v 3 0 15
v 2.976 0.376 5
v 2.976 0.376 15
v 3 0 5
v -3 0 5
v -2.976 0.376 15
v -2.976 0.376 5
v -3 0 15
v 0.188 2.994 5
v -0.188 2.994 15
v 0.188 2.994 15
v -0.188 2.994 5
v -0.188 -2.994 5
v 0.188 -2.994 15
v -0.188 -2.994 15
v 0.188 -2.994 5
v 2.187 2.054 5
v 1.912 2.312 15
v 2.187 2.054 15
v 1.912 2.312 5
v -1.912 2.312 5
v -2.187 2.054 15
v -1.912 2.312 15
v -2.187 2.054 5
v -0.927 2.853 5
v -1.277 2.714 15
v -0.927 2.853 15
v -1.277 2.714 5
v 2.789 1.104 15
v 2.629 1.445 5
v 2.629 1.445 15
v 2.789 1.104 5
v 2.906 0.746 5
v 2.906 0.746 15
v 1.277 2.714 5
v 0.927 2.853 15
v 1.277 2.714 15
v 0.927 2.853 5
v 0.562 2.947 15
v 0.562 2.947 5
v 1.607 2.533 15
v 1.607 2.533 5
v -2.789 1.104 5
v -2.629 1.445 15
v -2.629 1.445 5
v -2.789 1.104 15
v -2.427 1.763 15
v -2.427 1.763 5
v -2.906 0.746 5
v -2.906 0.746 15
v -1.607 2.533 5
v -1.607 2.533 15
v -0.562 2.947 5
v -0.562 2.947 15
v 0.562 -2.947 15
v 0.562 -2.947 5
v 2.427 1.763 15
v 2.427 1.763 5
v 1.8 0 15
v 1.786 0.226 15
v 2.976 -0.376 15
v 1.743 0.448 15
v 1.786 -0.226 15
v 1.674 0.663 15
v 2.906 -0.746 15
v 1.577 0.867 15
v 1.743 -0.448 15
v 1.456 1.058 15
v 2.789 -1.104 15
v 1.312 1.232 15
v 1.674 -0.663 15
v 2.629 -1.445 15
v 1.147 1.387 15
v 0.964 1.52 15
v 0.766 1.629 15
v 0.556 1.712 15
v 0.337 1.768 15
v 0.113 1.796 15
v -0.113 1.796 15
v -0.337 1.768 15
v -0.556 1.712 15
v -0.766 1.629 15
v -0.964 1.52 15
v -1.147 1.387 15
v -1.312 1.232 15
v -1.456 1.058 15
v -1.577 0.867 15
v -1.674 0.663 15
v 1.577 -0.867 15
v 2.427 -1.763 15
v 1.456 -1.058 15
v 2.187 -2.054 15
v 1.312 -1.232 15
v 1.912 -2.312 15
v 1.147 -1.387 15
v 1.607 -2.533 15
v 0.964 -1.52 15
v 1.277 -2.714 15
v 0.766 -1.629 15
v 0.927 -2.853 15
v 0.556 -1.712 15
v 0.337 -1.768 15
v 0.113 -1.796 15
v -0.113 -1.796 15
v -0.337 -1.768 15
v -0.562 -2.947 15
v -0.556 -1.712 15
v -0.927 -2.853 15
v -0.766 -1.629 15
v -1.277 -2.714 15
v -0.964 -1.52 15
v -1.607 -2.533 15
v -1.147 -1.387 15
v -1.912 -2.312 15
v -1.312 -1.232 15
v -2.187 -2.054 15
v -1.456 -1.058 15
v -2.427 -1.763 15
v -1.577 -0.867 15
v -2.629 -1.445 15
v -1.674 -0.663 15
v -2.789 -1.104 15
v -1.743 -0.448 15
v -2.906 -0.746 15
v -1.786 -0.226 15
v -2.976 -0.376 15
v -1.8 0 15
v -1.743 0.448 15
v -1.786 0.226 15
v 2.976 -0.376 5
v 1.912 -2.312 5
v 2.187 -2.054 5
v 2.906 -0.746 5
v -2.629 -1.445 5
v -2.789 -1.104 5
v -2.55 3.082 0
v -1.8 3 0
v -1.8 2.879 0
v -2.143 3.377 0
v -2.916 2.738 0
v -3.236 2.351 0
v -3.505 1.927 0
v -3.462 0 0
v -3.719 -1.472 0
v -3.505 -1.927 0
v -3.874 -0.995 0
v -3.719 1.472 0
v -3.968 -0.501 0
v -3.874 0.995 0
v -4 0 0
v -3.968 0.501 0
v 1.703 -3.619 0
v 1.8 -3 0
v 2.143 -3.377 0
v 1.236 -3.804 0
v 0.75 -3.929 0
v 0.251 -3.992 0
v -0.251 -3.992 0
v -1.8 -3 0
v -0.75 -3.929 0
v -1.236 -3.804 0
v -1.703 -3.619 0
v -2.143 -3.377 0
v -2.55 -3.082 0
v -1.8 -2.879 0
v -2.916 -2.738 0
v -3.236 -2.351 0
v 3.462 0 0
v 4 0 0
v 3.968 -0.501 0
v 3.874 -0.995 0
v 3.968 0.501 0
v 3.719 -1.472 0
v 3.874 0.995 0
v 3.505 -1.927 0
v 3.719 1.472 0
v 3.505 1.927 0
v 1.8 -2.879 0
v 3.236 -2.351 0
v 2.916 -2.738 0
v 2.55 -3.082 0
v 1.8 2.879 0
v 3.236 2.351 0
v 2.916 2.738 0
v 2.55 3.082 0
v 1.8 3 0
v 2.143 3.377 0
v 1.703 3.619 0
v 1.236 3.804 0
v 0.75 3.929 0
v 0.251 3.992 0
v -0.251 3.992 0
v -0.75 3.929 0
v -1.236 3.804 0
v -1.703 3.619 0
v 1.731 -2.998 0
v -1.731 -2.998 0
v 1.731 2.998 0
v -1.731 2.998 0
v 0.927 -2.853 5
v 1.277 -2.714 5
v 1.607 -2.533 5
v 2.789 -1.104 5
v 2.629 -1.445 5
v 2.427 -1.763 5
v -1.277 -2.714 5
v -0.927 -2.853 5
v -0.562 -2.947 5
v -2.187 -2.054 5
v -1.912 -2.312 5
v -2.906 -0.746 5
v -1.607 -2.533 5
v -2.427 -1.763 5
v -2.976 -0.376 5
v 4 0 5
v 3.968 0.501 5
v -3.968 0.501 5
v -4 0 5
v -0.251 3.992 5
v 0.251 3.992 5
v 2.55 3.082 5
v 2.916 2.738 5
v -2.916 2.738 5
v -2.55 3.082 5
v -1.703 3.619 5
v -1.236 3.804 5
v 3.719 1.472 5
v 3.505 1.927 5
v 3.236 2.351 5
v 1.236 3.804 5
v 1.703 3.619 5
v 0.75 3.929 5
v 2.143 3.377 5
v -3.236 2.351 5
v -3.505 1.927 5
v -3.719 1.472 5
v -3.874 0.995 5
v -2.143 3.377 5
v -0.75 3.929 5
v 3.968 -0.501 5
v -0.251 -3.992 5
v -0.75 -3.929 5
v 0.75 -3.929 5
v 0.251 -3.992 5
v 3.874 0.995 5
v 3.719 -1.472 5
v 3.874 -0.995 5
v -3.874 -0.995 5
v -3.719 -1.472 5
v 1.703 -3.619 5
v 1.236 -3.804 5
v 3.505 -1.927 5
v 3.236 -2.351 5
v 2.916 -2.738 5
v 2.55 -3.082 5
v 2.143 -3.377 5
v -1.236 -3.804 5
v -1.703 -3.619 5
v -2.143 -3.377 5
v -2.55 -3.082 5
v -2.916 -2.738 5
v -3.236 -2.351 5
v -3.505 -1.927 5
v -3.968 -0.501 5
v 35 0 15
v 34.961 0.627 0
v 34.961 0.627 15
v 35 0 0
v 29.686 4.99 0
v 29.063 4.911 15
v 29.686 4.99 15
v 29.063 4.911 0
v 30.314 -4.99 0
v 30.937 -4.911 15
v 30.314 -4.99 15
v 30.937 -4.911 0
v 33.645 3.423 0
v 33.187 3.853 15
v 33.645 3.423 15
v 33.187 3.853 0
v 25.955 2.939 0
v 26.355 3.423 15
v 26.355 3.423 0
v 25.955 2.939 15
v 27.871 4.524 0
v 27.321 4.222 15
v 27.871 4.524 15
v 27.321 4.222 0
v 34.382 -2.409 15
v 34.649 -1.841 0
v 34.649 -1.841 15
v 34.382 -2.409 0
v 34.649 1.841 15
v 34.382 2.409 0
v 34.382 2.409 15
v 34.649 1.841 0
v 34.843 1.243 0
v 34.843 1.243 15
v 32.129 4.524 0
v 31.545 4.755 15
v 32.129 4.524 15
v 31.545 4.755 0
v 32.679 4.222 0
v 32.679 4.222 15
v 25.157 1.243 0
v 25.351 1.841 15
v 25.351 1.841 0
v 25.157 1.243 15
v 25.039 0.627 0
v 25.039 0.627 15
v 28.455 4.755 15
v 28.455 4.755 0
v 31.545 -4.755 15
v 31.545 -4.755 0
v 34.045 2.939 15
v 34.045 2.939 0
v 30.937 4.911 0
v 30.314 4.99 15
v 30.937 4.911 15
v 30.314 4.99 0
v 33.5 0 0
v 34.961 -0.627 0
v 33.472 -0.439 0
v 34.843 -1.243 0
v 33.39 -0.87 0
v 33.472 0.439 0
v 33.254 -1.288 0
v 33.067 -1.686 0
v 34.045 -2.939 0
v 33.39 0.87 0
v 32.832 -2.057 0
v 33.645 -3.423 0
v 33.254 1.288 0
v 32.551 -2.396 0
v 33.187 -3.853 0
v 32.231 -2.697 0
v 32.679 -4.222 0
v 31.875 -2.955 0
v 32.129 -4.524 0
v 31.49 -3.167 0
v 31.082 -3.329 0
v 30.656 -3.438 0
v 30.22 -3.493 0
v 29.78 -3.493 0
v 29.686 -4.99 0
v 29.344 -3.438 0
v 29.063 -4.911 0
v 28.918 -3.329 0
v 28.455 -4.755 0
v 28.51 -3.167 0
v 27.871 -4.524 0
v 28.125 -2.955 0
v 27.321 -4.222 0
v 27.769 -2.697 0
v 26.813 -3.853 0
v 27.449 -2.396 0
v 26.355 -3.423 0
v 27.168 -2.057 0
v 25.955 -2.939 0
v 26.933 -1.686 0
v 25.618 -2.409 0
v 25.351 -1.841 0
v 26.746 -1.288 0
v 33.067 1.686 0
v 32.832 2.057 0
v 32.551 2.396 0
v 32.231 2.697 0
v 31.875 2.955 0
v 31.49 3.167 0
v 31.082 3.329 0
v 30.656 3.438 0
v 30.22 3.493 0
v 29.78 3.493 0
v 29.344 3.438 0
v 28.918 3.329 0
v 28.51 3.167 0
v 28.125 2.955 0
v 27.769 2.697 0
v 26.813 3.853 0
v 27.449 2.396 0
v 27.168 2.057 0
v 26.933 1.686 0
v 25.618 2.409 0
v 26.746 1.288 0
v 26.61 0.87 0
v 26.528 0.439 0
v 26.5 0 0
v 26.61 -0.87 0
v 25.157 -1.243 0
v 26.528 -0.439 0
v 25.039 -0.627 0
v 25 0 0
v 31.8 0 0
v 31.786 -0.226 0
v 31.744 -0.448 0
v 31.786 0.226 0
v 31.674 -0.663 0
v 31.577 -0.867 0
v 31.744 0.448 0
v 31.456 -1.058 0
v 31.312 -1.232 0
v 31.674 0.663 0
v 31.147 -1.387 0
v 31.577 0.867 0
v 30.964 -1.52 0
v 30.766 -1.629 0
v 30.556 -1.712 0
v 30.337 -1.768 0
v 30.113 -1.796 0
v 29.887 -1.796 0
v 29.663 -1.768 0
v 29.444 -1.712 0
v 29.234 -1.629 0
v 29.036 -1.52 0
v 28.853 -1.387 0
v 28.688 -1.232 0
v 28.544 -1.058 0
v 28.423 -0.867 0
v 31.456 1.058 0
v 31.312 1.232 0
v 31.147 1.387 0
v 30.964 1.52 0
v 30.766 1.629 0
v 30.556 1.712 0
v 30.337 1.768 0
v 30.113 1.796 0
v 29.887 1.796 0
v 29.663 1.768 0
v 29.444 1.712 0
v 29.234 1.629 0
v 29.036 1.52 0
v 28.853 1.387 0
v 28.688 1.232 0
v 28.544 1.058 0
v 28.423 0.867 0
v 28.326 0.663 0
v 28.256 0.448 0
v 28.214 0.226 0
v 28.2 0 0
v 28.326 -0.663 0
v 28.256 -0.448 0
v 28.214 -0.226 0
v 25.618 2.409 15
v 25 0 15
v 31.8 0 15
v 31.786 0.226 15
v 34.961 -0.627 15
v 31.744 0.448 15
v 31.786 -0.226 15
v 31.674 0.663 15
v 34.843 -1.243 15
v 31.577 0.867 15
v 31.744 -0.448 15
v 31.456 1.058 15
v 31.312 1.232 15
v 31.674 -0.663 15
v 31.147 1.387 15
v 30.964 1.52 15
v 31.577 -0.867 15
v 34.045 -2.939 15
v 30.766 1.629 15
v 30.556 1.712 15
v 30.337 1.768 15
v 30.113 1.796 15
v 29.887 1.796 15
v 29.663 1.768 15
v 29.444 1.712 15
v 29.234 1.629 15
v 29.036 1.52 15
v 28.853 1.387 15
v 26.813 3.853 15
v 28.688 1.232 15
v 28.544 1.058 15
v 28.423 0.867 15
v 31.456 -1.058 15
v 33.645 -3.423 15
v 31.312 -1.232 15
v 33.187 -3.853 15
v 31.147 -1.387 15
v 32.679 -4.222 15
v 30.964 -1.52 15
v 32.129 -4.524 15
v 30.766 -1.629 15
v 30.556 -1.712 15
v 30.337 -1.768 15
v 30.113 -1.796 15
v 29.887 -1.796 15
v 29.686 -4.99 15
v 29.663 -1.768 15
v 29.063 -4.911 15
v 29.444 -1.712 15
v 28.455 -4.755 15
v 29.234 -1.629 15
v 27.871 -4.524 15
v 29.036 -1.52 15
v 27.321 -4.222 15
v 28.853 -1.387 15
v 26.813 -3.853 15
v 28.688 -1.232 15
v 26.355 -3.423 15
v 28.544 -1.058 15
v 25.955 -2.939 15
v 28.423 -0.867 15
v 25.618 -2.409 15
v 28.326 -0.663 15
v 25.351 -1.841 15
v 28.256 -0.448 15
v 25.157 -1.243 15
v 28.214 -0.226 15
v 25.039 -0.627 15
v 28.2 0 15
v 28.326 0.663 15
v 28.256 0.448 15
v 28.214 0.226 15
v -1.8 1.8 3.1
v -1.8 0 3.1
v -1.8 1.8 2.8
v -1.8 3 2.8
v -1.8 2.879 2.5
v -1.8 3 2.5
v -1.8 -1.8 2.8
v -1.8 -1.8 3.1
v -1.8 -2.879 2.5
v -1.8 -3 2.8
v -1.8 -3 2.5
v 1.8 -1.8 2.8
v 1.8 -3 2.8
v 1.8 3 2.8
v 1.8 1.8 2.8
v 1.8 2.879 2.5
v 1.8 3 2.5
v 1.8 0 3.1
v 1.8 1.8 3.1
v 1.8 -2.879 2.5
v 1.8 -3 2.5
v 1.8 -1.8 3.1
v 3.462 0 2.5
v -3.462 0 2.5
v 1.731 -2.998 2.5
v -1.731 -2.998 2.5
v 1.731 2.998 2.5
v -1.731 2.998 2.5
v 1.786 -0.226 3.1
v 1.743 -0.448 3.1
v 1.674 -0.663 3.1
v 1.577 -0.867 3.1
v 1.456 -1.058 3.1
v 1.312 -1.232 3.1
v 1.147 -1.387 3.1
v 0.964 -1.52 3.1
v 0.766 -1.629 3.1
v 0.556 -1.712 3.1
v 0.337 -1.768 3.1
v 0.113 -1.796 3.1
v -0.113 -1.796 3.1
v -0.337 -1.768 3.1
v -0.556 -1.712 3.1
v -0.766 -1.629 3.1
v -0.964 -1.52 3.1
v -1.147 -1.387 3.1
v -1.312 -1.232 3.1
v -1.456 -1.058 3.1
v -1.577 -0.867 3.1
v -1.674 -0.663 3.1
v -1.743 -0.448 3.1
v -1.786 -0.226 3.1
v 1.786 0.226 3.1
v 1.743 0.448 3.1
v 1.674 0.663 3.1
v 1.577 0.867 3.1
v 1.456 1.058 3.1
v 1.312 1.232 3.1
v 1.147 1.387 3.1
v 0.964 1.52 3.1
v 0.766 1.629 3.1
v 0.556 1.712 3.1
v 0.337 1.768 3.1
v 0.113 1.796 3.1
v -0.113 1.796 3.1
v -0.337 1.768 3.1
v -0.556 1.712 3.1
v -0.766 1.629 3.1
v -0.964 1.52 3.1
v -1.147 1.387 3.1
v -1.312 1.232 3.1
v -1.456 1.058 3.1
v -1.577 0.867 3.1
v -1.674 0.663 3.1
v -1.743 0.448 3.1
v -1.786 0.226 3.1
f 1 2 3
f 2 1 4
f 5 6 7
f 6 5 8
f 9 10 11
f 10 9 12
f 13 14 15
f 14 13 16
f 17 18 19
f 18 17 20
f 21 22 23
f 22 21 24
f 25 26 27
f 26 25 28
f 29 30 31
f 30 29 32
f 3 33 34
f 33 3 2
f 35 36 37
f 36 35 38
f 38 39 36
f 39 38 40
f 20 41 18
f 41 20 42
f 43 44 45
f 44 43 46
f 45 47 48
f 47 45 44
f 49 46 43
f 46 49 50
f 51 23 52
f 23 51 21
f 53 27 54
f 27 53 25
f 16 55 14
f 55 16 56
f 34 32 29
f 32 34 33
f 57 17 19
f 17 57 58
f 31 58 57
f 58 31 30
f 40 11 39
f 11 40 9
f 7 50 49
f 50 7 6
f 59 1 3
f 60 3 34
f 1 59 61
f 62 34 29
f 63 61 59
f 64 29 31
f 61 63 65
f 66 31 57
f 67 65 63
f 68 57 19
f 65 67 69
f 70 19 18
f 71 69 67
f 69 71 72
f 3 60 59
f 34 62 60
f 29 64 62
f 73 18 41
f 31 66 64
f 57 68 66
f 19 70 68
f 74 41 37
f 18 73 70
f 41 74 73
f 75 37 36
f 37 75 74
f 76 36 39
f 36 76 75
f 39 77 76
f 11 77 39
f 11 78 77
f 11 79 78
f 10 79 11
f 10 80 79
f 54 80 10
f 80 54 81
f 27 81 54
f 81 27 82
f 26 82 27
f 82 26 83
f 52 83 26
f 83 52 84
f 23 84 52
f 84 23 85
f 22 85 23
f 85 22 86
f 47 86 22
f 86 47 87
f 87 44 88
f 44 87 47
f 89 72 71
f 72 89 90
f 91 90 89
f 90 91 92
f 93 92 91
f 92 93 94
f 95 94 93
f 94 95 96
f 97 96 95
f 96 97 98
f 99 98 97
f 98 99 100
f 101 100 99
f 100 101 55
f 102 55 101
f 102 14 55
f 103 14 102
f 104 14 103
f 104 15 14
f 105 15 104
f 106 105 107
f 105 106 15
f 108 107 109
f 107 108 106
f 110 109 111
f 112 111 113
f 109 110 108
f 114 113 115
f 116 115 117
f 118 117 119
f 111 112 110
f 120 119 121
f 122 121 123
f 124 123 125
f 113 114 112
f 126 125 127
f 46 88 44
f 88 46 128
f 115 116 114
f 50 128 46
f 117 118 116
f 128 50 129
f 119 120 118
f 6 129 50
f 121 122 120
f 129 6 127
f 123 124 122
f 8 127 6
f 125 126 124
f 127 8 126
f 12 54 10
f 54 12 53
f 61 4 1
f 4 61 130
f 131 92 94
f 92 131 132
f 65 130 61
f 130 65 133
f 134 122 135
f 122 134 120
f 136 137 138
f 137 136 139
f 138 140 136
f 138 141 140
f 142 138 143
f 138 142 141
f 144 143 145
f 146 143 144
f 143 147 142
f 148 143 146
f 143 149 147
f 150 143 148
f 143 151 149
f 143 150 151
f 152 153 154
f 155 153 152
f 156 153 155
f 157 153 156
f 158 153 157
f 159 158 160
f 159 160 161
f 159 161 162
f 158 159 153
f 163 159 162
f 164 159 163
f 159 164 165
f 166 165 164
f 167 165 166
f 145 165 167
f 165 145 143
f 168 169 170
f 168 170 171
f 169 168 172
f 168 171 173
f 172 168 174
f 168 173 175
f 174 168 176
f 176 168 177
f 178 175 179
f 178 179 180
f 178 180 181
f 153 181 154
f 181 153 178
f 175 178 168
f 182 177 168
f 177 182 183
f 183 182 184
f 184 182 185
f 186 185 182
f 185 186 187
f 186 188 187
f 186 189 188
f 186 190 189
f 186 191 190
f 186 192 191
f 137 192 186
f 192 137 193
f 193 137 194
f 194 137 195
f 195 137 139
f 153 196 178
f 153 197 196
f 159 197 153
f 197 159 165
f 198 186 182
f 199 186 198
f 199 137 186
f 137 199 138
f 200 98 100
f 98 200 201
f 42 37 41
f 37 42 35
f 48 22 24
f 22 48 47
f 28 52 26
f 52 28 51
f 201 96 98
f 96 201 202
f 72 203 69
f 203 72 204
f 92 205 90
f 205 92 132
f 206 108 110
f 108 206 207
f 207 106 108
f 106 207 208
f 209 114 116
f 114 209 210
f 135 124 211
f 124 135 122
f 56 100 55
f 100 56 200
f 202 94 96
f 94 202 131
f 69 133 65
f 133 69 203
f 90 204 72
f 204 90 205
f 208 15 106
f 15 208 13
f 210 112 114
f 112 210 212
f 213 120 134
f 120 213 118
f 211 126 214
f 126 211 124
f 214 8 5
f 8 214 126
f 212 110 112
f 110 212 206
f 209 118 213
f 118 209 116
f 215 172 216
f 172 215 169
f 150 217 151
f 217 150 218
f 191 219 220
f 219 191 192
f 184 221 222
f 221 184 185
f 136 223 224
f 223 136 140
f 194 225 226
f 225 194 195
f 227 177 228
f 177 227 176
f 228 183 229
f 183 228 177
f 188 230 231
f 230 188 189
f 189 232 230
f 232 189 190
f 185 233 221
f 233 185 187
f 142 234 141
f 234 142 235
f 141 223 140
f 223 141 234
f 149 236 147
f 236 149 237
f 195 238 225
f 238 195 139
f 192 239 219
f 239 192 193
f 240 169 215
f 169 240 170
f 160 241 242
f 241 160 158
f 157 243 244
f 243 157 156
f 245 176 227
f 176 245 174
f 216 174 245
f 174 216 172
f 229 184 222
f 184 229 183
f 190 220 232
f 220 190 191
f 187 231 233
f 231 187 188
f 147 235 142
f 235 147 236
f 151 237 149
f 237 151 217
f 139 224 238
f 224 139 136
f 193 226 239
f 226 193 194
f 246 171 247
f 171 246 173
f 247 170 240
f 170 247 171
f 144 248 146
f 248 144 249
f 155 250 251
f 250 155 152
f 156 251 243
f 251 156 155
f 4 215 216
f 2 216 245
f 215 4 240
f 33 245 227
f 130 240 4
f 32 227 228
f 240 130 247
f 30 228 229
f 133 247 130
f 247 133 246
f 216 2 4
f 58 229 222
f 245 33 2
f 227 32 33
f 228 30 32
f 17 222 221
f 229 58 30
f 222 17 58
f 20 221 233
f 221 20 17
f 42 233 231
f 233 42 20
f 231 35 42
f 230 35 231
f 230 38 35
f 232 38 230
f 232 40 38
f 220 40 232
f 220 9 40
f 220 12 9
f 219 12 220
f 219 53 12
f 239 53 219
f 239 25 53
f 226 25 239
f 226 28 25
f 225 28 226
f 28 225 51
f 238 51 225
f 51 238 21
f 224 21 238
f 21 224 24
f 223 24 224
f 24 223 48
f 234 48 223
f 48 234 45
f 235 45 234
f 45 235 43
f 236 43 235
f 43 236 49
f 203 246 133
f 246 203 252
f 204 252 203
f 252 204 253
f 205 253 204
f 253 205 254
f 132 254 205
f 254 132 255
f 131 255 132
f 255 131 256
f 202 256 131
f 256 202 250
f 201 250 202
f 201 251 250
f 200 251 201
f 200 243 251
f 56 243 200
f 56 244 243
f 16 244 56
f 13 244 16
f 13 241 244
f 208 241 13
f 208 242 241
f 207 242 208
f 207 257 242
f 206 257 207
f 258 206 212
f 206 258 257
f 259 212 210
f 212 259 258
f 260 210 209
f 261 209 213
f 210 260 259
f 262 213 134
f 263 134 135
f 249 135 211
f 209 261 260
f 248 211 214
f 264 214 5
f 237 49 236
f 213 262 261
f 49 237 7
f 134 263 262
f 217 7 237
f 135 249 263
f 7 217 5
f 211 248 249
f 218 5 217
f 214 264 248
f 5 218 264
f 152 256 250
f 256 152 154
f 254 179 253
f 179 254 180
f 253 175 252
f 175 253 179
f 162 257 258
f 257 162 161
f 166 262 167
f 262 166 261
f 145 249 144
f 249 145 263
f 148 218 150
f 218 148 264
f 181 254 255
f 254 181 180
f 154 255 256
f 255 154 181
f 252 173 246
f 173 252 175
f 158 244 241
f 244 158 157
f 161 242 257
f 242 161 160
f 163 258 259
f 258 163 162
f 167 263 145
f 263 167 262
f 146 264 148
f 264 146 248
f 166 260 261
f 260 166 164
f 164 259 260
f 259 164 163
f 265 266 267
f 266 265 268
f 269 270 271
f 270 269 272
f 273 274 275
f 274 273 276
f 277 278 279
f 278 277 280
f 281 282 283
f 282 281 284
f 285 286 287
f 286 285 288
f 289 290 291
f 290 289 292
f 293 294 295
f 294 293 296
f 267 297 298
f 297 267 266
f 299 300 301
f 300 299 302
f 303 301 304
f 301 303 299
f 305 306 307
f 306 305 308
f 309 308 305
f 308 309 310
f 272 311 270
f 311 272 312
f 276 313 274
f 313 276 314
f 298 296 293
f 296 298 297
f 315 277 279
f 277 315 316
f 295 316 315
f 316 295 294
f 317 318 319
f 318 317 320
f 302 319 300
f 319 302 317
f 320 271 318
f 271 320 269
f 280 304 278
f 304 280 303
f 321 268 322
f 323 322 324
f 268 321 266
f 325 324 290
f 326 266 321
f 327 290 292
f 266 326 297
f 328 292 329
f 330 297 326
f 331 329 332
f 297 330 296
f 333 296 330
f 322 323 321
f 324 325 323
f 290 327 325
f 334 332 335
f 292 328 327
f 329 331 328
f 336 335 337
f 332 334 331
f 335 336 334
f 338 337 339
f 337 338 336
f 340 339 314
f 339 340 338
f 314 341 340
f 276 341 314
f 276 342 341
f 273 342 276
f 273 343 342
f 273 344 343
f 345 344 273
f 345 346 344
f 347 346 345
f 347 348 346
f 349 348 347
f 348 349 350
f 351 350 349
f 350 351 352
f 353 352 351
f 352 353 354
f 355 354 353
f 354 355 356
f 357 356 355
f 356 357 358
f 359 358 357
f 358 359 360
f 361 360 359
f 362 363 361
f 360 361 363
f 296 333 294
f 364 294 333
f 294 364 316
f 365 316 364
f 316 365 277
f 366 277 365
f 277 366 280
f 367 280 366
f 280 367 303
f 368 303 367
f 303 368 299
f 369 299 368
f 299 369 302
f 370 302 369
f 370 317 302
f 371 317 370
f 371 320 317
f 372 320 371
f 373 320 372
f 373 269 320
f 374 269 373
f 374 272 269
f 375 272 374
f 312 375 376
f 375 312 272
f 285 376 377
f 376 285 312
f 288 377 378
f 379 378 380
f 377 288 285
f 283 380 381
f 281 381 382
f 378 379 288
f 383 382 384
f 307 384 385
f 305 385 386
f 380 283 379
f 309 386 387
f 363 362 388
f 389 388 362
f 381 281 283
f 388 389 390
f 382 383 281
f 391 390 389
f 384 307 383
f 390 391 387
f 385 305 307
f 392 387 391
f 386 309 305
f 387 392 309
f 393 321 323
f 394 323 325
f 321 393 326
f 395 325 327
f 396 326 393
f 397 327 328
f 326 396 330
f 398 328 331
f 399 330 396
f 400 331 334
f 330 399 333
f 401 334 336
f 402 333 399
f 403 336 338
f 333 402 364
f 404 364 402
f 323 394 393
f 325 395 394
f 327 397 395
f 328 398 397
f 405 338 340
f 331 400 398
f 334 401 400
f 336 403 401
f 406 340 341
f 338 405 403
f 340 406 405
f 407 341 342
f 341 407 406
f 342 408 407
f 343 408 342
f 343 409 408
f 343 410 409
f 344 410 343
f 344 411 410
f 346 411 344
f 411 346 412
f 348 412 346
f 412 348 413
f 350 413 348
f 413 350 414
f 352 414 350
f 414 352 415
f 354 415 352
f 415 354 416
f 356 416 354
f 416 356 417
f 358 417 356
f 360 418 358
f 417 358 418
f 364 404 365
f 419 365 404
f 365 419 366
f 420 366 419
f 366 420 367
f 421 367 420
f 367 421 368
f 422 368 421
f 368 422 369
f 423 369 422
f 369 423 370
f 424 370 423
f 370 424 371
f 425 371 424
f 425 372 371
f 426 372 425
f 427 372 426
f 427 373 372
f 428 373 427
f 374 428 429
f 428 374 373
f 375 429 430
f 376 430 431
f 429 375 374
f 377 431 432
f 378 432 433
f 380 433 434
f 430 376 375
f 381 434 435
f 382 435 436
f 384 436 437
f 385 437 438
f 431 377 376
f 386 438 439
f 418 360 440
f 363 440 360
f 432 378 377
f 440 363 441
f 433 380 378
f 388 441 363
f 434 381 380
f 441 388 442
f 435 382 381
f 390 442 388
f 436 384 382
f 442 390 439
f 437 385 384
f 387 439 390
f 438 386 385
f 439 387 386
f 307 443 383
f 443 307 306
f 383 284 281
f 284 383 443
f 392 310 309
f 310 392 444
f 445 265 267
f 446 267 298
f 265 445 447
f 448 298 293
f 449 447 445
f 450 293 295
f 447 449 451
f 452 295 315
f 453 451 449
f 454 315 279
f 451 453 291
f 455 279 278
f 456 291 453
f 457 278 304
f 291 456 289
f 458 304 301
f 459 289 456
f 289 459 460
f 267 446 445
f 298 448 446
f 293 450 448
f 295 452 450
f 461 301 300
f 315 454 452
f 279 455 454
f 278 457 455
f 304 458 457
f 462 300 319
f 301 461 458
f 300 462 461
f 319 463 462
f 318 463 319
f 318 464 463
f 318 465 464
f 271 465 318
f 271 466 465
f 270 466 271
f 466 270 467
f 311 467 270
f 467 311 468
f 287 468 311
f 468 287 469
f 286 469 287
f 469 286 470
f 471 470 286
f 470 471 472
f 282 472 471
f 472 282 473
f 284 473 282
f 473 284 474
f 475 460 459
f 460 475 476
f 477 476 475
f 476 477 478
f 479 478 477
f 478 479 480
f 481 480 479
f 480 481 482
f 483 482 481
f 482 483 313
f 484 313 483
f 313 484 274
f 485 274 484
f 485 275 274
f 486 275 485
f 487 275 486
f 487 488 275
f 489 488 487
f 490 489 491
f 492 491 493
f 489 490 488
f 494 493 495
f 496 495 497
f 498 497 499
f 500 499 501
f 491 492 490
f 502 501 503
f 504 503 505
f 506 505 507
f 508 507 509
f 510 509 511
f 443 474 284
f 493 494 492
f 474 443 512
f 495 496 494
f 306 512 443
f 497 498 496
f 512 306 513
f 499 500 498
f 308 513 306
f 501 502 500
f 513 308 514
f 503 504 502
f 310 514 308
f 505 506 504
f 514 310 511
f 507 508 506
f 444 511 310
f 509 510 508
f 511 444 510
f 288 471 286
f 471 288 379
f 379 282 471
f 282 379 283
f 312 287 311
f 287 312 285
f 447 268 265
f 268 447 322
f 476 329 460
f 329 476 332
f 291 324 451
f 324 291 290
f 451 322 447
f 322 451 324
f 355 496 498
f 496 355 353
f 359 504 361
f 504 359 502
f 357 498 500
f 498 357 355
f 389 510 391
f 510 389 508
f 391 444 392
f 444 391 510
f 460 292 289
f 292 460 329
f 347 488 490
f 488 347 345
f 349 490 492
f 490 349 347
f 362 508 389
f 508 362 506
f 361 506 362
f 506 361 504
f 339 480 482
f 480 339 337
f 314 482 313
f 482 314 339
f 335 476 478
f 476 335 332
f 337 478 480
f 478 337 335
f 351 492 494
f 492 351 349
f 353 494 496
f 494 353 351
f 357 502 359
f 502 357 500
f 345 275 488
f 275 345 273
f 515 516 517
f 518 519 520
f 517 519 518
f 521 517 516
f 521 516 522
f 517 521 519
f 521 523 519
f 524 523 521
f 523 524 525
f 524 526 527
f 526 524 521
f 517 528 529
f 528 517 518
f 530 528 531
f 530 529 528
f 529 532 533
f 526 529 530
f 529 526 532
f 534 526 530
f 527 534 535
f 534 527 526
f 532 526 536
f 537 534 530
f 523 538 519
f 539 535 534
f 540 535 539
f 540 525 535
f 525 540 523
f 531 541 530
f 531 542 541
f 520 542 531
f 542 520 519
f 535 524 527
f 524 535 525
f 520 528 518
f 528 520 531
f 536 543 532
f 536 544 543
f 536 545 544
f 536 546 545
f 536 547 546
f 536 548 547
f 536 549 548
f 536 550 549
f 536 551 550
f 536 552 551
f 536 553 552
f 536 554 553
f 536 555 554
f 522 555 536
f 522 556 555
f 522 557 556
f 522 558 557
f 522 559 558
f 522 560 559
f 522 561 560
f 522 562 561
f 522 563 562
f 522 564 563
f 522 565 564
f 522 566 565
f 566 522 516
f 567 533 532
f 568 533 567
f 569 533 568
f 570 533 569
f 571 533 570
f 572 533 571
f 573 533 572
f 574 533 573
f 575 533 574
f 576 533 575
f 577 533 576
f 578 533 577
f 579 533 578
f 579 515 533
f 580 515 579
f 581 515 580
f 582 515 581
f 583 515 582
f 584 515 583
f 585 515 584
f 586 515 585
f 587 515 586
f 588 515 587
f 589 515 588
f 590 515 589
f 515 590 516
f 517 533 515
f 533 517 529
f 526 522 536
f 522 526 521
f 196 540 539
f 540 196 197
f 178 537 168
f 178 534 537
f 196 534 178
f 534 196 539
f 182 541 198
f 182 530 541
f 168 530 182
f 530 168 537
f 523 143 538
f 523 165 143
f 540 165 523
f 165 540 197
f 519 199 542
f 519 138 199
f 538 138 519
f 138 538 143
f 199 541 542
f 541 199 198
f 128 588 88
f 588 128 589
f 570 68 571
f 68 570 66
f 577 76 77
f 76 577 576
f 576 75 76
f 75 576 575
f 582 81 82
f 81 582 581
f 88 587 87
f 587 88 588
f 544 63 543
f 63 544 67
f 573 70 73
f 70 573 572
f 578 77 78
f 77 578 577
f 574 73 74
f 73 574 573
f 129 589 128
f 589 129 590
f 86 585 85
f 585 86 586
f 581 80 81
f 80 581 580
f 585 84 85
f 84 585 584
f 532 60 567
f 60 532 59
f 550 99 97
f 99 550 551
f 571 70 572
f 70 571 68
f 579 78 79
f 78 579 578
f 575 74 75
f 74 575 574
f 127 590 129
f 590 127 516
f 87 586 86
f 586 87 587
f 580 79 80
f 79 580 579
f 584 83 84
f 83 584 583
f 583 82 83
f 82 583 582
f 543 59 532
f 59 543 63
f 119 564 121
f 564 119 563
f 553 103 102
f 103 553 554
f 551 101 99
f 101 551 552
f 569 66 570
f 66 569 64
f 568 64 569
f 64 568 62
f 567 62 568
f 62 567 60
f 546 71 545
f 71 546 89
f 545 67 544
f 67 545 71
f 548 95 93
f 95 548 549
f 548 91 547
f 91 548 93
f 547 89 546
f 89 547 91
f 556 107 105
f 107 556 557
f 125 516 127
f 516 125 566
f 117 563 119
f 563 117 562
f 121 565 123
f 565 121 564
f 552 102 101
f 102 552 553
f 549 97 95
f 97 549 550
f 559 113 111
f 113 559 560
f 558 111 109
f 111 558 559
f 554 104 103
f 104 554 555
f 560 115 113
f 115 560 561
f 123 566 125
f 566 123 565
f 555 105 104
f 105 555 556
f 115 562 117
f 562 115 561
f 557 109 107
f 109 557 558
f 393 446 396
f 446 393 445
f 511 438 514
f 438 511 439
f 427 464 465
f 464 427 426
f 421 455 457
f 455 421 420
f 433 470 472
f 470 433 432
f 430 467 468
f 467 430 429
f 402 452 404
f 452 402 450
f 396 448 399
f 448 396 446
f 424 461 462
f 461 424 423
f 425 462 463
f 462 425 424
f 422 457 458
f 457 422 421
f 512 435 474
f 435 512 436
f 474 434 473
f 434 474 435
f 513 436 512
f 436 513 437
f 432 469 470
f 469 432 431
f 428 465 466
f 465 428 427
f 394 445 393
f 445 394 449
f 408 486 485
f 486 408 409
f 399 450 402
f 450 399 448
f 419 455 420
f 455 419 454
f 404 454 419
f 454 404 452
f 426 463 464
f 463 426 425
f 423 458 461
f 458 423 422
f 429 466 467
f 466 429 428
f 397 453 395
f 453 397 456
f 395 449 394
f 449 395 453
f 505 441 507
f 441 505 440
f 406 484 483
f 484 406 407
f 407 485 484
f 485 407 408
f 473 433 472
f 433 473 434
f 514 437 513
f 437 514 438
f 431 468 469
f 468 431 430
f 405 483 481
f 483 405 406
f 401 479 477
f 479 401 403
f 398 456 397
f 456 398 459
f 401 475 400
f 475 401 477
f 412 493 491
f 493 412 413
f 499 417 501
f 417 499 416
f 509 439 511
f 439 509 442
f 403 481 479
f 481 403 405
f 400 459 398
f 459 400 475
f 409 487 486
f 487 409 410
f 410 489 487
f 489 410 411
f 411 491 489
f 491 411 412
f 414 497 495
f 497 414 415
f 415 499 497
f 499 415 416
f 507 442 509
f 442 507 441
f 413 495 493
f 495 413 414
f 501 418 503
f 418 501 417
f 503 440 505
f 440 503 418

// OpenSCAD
$fn = 50;


difference() {
	union() {
		cylinder(h = 15, r = 3.0000000000);
		cylinder(h = 5, r = 4.0000000000);
		translate(v = [30, 0, 0.0000000000]) {
			cylinder(h = 15, r = 5.0000000000);
		}
	}
	union() {
		translate(v = [0, 0, 0]) {
			rotate(a = [0, 0, 0]) {
				difference() {
					union() {
						#translate(v = [-1.8000000000, -3.0000000000, -0.3000000000]) {
							cube(size = [3.6000000000, 6.0000000000, 0.3000000000]);
						}
						#translate(v = [-1.8000000000, -1.8000000000, -0.6000000000]) {
							cube(size = [3.6000000000, 3.6000000000, 0.3000000000]);
						}
						#translate(v = [-1.8000000000, -3.0000000000, 2.5000000000]) {
							cube(size = [3.6000000000, 6.0000000000, 0.3000000000]);
						}
						#translate(v = [-1.8000000000, -1.8000000000, 2.8000000000]) {
							cube(size = [3.6000000000, 3.6000000000, 0.3000000000]);
						}
						#linear_extrude(height = 2.5000000000) {
							polygon(points = [[3.4620000000, 0.0000000000], [1.7310000000, 2.9981799479], [-1.7310000000, 2.9981799479], [-3.4620000000, 0.0000000000], [-1.7310000000, -2.9981799479], [1.7310000000, -2.9981799479]]);
						}
						#translate(v = [-1.8000000000, -3.0000000000, -0.3000000000]) {
							cube(size = [3.6000000000, 6.0000000000, 0.3000000000]);
						}
						#translate(v = [-1.8000000000, -1.8000000000, -0.6000000000]) {
							cube(size = [3.6000000000, 3.6000000000, 0.3000000000]);
						}
						#translate(v = [-1.8000000000, -3.0000000000, 2.5000000000]) {
							cube(size = [3.6000000000, 6.0000000000, 0.3000000000]);
						}
						#translate(v = [-1.8000000000, -1.8000000000, 2.8000000000]) {
							cube(size = [3.6000000000, 3.6000000000, 0.3000000000]);
						}
						#translate(v = [-1.8000000000, -3.0000000000, -0.3000000000]) {
							cube(size = [3.6000000000, 6.0000000000, 0.3000000000]);
						}
						#translate(v = [-1.8000000000, -1.8000000000, -0.6000000000]) {
							cube(size = [3.6000000000, 3.6000000000, 0.3000000000]);
						}
						#translate(v = [-1.8000000000, -3.0000000000, 2.5000000000]) {
							cube(size = [3.6000000000, 6.0000000000, 0.3000000000]);
						}
						#translate(v = [-1.8000000000, -1.8000000000, 2.8000000000]) {
							cube(size = [3.6000000000, 3.6000000000, 0.3000000000]);
						}
					}
					union();
				}
			}
		}
		translate(v = [0, 0, -100.0000000000]) {
			cylinder(h = 200, r = 1.8000000000);
		}
		translate(v = [30, 0, -100.0000000000]) {
			cylinder(h = 200, r = 1.8000000000);
		}
		translate(v = [30, 0, -10.0000000000]) {
			cylinder(h = 10, r = 3.5000000000);
		}
	}
}
